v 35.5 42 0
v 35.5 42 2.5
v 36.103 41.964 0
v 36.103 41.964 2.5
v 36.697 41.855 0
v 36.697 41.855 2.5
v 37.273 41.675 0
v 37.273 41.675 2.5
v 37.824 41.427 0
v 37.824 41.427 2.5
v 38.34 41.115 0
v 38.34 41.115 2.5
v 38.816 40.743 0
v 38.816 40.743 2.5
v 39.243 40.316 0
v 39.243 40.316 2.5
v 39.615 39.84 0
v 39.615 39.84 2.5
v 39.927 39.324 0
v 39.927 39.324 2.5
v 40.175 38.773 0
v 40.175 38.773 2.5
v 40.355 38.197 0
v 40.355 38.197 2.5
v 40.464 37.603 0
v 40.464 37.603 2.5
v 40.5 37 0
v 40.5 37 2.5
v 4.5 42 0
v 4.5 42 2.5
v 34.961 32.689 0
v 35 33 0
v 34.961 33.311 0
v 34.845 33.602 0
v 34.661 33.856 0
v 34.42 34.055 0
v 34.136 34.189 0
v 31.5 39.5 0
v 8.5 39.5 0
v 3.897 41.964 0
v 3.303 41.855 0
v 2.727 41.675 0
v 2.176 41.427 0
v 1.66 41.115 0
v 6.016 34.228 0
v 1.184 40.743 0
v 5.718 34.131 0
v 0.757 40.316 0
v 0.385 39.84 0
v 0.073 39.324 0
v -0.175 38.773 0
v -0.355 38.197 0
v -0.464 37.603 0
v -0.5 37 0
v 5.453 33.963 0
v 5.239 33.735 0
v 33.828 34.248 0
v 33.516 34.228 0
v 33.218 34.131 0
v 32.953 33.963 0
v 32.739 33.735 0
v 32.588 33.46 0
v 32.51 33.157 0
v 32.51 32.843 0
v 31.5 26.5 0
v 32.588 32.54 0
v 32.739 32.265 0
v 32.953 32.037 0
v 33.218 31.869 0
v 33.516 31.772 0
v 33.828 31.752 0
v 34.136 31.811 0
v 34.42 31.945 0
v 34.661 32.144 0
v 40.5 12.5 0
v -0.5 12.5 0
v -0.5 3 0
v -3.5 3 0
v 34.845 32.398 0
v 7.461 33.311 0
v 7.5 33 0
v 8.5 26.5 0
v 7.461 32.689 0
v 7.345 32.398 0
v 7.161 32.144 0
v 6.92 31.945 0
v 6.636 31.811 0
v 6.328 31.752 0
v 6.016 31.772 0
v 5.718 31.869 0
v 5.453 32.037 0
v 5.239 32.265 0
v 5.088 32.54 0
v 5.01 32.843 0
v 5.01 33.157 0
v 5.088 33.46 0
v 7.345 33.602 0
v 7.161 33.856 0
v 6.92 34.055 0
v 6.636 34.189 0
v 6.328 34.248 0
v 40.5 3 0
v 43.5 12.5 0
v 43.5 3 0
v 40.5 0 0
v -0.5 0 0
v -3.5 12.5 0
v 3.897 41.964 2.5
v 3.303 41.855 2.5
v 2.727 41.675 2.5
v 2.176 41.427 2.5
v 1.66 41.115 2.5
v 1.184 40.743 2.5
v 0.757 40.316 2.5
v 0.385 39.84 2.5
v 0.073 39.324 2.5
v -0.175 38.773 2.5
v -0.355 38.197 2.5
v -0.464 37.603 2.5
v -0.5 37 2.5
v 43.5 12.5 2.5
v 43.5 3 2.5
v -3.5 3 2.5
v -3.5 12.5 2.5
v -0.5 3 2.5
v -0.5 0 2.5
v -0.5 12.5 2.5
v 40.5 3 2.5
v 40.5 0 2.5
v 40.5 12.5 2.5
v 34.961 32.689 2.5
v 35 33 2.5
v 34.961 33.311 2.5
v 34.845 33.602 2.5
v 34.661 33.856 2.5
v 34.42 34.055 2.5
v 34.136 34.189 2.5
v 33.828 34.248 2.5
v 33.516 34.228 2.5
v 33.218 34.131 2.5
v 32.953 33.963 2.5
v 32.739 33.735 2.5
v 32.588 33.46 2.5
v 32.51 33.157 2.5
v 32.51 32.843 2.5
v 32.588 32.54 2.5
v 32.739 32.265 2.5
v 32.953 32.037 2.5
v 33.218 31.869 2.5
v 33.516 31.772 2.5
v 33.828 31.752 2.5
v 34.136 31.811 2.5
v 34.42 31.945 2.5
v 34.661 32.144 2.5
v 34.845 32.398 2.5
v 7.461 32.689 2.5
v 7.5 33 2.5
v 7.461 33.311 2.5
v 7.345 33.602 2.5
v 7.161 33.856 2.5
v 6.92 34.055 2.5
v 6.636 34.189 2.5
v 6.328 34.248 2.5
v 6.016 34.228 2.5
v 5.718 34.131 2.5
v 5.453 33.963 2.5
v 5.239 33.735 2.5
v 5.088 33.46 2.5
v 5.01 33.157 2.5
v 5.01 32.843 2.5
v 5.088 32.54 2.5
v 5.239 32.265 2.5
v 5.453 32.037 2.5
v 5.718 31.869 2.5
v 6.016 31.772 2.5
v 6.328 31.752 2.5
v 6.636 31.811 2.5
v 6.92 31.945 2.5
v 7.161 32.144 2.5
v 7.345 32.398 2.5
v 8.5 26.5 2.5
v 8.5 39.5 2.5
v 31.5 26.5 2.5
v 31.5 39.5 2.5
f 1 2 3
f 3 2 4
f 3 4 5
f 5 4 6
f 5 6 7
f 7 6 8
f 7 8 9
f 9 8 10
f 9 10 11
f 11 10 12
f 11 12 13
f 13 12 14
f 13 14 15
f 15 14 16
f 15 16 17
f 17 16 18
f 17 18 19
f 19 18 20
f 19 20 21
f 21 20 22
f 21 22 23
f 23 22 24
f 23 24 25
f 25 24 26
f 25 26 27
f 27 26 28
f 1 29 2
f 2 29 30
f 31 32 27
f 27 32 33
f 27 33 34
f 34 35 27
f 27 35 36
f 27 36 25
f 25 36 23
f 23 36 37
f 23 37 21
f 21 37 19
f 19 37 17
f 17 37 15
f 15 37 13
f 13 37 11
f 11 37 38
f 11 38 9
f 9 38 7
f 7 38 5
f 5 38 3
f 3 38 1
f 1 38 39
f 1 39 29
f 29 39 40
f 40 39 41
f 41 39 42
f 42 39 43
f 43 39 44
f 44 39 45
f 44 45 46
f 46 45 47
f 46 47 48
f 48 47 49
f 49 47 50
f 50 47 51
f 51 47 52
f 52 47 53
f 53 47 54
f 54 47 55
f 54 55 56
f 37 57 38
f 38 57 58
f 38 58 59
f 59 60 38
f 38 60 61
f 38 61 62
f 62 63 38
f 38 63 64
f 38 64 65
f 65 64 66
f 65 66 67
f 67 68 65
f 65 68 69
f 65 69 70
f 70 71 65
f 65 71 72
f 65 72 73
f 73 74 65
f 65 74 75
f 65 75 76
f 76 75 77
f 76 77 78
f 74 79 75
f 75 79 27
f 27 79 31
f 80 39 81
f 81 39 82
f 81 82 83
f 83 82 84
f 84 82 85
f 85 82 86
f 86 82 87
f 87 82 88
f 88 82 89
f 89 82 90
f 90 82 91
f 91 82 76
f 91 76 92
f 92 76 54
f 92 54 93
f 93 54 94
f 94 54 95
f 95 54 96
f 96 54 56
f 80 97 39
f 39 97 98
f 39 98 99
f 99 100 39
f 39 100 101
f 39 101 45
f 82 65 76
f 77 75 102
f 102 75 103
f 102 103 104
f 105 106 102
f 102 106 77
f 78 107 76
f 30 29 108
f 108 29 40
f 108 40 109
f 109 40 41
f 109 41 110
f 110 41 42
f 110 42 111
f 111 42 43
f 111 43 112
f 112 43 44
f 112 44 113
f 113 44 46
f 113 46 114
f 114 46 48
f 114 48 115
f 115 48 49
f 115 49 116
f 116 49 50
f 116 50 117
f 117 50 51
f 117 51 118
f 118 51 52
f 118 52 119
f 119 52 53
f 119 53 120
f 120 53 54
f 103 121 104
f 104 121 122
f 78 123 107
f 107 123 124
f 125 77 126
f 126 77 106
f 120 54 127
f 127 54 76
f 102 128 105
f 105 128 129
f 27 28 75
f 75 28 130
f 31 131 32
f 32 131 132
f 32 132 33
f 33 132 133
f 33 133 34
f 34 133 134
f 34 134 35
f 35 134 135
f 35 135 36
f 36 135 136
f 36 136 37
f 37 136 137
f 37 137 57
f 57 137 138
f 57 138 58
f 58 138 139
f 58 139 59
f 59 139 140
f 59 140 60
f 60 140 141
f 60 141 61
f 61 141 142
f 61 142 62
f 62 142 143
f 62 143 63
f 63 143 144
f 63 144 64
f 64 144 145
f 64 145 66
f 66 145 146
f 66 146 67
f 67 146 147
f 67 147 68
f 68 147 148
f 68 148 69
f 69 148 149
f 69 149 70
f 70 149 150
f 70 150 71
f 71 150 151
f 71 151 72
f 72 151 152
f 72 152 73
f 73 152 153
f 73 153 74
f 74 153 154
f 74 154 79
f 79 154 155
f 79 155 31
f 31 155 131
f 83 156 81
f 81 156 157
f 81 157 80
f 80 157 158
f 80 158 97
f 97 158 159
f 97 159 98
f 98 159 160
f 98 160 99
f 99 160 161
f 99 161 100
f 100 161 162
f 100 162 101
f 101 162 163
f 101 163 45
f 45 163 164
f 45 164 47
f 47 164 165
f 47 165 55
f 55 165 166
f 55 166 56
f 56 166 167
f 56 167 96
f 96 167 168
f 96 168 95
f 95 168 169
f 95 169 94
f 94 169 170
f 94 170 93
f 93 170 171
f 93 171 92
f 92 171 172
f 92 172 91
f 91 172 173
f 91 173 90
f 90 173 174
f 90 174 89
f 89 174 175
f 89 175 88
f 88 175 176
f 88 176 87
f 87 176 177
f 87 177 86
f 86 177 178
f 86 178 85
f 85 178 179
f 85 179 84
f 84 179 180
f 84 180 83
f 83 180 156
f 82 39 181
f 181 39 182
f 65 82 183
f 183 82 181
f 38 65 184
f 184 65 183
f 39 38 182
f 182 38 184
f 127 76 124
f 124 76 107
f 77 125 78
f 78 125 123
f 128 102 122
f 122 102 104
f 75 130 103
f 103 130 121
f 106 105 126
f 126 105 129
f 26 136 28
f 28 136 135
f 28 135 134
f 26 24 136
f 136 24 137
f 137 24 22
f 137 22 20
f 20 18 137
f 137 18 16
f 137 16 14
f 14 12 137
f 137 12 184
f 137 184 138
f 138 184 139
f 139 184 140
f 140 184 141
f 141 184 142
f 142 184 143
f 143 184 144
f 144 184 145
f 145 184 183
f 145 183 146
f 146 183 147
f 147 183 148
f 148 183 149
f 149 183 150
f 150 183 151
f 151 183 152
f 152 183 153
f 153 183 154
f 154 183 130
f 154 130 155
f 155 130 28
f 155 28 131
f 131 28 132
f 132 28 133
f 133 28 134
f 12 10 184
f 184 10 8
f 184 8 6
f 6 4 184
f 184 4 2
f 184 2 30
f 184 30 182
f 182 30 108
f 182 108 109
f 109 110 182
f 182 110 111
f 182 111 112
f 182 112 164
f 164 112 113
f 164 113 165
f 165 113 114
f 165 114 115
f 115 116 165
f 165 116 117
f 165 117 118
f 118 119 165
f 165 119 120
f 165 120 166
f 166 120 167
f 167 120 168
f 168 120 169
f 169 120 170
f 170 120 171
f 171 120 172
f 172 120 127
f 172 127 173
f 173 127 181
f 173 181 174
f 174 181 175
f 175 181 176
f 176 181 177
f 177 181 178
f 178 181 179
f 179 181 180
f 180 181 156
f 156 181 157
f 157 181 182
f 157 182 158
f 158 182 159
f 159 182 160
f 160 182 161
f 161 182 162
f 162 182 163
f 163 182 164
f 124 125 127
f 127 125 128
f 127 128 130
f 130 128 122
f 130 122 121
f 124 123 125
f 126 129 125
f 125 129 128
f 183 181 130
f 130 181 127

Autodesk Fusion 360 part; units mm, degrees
sketch "Sketch1" plane through (0, 0, 0) normal (0, 0, 1) x (1, 0, 0)
  line L0 (0, 0) -> (40, 0)
  line L1 (40, 0) -> (40, 42)
  line L2 (40, 42) -> (0, 42)
  line L3 (0, 42) -> (0, 0)
  dimension "d1" = 40
  dimension "d2" = 42
extrude "Extrude1" add sketch "Sketch1" along normal blind 2.5
sketch "Sketch2" plane through (40, 0, 0) normal (1, 0, 0) x (0, 1, 0)
  line L0 (0, 0) -> (42, 0)
  line L1 (42, 0) -> (42, 2.5)
  line L2 (42, 2.5) -> (0, 2.5)
  line L3 (0, 2.5) -> (0, 0)
  line L4 (3, 2.5) -> (12.5, 2.5)
  line L5 (12.5, 2.5) -> (12.5, 0)
  line L6 (12.5, 0) -> (3, 0)
  line L7 (3, 0) -> (3, 2.5)
  dimension "d5" = 9.5
  dimension "d6" = 3
extrude "Extrude2" add sketch "Sketch2" along normal blind 3 contours L0 L2 L4 L5 L6 L7
sketch "Sketch3" plane through (0, 0, 0) normal (-1, 0, 0) x (0, -1, 0)
  line L0 (-42, 0) -> (0, 0)
  line L1 (0, 0) -> (0, 2.5)
  line L2 (0, 2.5) -> (-42, 2.5)
  line L3 (-42, 2.5) -> (-42, 0)
  line L4 (-3, 2.5) -> (-12.5, 2.5)
  line L5 (-12.5, 2.5) -> (-12.5, 0)
  line L6 (-12.5, 0) -> (-3, 0)
  line L7 (-3, 0) -> (-3, 2.5)
  dimension "d9" = 9.5
  dimension "d10" = 2.5
  dimension "d11" = 3
extrude "Extrude3" add sketch "Sketch3" along normal blind 3 contours L0 L2 L4 L5 L6 L7
sketch "Sketch4" plane through (0, 0, 2.5) normal (0, 0, 1) x (-1, 0, 0)
  line L0 (0, -42) -> (0, -12.5)
  line L1 (0, -12.5) -> (3, -12.5)
  line L2 (3, -12.5) -> (3, -3)
  line L3 (3, -3) -> (0, -3)
  line L4 (0, -3) -> (0, 0)
  line L5 (0, 0) -> (-40, 0)
  line L6 (-40, 0) -> (-40, -3)
  line L7 (-40, -3) -> (-43, -3)
  line L8 (-43, -3) -> (-43, -12.5)
  line L9 (-43, -12.5) -> (-40, -12.5)
  line L10 (-40, -12.5) -> (-40, -42)
  line L11 (-40, -42) -> (0, -42)
  line L12 (-8.5, -39.5) -> (-31.5, -39.5)
  line L13 (-31.5, -39.5) -> (-31.5, -26.5)
  line L14 (-31.5, -26.5) -> (-8.5, -26.5)
  line L15 (-8.5, -26.5) -> (-8.5, -39.5)
  dimension "d14" = 23
  dimension "d15" = 13
  dimension "d16" = 8.5
  dimension "d17" = 14
extrude "Extrude4" cut sketch "Sketch4" against normal blind 3 contours L12 L13 L14 L15
sketch "Sketch5" plane through (0, 0, 2.5) normal (0, 0, 1) x (-1, 0, 0)
  line L0 (-31.5, -39.5) -> (-31.5, -26.5)
  line L1 (-31.5, -26.5) -> (-8.5, -26.5)
  line L2 (-8.5, -26.5) -> (-8.5, -39.5)
  line L3 (-8.5, -39.5) -> (-31.5, -39.5)
  line L4 (0, -42) -> (0, -12.5)
  line L5 (0, -12.5) -> (3, -12.5)
  line L6 (3, -12.5) -> (3, -3)
  line L7 (3, -3) -> (0, -3)
  line L8 (0, -3) -> (0, 0)
  line L9 (0, 0) -> (-40, 0)
  line L10 (-40, 0) -> (-40, -3)
  line L11 (-40, -3) -> (-43, -3)
  line L12 (-43, -3) -> (-43, -12.5)
  line L13 (-43, -12.5) -> (-40, -12.5)
  line L14 (-40, -12.5) -> (-40, -42)
  line L15 (-40, -42) -> (0, -42)
  circle A0 centre (-6.25, -33) radius 1.25
  dimension "d24" = 2.5
  dimension "d25" = 2.25
  dimension "d26" = 6.5
extrude "Extrude5" cut sketch "Sketch5" against normal blind 3 contours A0
sketch "Sketch6" plane through (0, 0, 2.5) normal (0, 0, 1) x (-1, 0, 0)
  circle A0 centre (-6.25, -33) radius 1.25
  line L0 (-31.5, -39.5) -> (-31.5, -26.5)
  line L1 (-31.5, -26.5) -> (-8.5, -26.5)
  line L2 (-8.5, -26.5) -> (-8.5, -39.5)
  line L3 (-8.5, -39.5) -> (-31.5, -39.5)
  line L4 (0, -42) -> (0, -12.5)
  line L5 (0, -12.5) -> (3, -12.5)
  line L6 (3, -12.5) -> (3, -3)
  line L7 (3, -3) -> (0, -3)
  line L8 (0, -3) -> (0, 0)
  line L9 (0, 0) -> (-40, 0)
  line L10 (-40, 0) -> (-40, -3)
  line L11 (-40, -3) -> (-43, -3)
  line L12 (-43, -3) -> (-43, -12.5)
  line L13 (-43, -12.5) -> (-40, -12.5)
  line L14 (-40, -12.5) -> (-40, -42)
  line L15 (-40, -42) -> (0, -42)
  circle A1 centre (-33.75, -33) radius 1.25
  dimension "d29" = 2.5
  dimension "d30" = 2.25
  dimension "d31" = 6.5
extrude "Extrude6" cut sketch "Sketch6" against normal blind 3 contours A1
extrude "Extrude7" add 1 faces at (40, 22.3333, 0.8333) along direction (1, 0, 0) blind 0.5
extrude "Extrude8" add 1 faces at (40, 2, 1.6667) along direction (1, 0, 0) blind 0.5
extrude "Extrude9" add 1 faces at (0, 32.1667, 0.8333) along direction (-1, 0, 0) blind 0.5
extrude "Extrude10" add 1 faces at (0, 1, 1.6667) along direction (-1, 0, 0) blind 0.5
extrude "Extrude11" add 1 faces at (-3, 9.3333, 1.6667) along direction (-1, 0, 0) blind 0.5
extrude "Extrude12" add 1 faces at (43, 6.1667, 1.6667) along direction (1, 0, 0) blind 0.5
fillet "Fillet3" radius 5 1 edges at (-0.5, 42, 1.25)
fillet "Fillet4" radius 5 1 edges at (40.5, 42, 1.25)
